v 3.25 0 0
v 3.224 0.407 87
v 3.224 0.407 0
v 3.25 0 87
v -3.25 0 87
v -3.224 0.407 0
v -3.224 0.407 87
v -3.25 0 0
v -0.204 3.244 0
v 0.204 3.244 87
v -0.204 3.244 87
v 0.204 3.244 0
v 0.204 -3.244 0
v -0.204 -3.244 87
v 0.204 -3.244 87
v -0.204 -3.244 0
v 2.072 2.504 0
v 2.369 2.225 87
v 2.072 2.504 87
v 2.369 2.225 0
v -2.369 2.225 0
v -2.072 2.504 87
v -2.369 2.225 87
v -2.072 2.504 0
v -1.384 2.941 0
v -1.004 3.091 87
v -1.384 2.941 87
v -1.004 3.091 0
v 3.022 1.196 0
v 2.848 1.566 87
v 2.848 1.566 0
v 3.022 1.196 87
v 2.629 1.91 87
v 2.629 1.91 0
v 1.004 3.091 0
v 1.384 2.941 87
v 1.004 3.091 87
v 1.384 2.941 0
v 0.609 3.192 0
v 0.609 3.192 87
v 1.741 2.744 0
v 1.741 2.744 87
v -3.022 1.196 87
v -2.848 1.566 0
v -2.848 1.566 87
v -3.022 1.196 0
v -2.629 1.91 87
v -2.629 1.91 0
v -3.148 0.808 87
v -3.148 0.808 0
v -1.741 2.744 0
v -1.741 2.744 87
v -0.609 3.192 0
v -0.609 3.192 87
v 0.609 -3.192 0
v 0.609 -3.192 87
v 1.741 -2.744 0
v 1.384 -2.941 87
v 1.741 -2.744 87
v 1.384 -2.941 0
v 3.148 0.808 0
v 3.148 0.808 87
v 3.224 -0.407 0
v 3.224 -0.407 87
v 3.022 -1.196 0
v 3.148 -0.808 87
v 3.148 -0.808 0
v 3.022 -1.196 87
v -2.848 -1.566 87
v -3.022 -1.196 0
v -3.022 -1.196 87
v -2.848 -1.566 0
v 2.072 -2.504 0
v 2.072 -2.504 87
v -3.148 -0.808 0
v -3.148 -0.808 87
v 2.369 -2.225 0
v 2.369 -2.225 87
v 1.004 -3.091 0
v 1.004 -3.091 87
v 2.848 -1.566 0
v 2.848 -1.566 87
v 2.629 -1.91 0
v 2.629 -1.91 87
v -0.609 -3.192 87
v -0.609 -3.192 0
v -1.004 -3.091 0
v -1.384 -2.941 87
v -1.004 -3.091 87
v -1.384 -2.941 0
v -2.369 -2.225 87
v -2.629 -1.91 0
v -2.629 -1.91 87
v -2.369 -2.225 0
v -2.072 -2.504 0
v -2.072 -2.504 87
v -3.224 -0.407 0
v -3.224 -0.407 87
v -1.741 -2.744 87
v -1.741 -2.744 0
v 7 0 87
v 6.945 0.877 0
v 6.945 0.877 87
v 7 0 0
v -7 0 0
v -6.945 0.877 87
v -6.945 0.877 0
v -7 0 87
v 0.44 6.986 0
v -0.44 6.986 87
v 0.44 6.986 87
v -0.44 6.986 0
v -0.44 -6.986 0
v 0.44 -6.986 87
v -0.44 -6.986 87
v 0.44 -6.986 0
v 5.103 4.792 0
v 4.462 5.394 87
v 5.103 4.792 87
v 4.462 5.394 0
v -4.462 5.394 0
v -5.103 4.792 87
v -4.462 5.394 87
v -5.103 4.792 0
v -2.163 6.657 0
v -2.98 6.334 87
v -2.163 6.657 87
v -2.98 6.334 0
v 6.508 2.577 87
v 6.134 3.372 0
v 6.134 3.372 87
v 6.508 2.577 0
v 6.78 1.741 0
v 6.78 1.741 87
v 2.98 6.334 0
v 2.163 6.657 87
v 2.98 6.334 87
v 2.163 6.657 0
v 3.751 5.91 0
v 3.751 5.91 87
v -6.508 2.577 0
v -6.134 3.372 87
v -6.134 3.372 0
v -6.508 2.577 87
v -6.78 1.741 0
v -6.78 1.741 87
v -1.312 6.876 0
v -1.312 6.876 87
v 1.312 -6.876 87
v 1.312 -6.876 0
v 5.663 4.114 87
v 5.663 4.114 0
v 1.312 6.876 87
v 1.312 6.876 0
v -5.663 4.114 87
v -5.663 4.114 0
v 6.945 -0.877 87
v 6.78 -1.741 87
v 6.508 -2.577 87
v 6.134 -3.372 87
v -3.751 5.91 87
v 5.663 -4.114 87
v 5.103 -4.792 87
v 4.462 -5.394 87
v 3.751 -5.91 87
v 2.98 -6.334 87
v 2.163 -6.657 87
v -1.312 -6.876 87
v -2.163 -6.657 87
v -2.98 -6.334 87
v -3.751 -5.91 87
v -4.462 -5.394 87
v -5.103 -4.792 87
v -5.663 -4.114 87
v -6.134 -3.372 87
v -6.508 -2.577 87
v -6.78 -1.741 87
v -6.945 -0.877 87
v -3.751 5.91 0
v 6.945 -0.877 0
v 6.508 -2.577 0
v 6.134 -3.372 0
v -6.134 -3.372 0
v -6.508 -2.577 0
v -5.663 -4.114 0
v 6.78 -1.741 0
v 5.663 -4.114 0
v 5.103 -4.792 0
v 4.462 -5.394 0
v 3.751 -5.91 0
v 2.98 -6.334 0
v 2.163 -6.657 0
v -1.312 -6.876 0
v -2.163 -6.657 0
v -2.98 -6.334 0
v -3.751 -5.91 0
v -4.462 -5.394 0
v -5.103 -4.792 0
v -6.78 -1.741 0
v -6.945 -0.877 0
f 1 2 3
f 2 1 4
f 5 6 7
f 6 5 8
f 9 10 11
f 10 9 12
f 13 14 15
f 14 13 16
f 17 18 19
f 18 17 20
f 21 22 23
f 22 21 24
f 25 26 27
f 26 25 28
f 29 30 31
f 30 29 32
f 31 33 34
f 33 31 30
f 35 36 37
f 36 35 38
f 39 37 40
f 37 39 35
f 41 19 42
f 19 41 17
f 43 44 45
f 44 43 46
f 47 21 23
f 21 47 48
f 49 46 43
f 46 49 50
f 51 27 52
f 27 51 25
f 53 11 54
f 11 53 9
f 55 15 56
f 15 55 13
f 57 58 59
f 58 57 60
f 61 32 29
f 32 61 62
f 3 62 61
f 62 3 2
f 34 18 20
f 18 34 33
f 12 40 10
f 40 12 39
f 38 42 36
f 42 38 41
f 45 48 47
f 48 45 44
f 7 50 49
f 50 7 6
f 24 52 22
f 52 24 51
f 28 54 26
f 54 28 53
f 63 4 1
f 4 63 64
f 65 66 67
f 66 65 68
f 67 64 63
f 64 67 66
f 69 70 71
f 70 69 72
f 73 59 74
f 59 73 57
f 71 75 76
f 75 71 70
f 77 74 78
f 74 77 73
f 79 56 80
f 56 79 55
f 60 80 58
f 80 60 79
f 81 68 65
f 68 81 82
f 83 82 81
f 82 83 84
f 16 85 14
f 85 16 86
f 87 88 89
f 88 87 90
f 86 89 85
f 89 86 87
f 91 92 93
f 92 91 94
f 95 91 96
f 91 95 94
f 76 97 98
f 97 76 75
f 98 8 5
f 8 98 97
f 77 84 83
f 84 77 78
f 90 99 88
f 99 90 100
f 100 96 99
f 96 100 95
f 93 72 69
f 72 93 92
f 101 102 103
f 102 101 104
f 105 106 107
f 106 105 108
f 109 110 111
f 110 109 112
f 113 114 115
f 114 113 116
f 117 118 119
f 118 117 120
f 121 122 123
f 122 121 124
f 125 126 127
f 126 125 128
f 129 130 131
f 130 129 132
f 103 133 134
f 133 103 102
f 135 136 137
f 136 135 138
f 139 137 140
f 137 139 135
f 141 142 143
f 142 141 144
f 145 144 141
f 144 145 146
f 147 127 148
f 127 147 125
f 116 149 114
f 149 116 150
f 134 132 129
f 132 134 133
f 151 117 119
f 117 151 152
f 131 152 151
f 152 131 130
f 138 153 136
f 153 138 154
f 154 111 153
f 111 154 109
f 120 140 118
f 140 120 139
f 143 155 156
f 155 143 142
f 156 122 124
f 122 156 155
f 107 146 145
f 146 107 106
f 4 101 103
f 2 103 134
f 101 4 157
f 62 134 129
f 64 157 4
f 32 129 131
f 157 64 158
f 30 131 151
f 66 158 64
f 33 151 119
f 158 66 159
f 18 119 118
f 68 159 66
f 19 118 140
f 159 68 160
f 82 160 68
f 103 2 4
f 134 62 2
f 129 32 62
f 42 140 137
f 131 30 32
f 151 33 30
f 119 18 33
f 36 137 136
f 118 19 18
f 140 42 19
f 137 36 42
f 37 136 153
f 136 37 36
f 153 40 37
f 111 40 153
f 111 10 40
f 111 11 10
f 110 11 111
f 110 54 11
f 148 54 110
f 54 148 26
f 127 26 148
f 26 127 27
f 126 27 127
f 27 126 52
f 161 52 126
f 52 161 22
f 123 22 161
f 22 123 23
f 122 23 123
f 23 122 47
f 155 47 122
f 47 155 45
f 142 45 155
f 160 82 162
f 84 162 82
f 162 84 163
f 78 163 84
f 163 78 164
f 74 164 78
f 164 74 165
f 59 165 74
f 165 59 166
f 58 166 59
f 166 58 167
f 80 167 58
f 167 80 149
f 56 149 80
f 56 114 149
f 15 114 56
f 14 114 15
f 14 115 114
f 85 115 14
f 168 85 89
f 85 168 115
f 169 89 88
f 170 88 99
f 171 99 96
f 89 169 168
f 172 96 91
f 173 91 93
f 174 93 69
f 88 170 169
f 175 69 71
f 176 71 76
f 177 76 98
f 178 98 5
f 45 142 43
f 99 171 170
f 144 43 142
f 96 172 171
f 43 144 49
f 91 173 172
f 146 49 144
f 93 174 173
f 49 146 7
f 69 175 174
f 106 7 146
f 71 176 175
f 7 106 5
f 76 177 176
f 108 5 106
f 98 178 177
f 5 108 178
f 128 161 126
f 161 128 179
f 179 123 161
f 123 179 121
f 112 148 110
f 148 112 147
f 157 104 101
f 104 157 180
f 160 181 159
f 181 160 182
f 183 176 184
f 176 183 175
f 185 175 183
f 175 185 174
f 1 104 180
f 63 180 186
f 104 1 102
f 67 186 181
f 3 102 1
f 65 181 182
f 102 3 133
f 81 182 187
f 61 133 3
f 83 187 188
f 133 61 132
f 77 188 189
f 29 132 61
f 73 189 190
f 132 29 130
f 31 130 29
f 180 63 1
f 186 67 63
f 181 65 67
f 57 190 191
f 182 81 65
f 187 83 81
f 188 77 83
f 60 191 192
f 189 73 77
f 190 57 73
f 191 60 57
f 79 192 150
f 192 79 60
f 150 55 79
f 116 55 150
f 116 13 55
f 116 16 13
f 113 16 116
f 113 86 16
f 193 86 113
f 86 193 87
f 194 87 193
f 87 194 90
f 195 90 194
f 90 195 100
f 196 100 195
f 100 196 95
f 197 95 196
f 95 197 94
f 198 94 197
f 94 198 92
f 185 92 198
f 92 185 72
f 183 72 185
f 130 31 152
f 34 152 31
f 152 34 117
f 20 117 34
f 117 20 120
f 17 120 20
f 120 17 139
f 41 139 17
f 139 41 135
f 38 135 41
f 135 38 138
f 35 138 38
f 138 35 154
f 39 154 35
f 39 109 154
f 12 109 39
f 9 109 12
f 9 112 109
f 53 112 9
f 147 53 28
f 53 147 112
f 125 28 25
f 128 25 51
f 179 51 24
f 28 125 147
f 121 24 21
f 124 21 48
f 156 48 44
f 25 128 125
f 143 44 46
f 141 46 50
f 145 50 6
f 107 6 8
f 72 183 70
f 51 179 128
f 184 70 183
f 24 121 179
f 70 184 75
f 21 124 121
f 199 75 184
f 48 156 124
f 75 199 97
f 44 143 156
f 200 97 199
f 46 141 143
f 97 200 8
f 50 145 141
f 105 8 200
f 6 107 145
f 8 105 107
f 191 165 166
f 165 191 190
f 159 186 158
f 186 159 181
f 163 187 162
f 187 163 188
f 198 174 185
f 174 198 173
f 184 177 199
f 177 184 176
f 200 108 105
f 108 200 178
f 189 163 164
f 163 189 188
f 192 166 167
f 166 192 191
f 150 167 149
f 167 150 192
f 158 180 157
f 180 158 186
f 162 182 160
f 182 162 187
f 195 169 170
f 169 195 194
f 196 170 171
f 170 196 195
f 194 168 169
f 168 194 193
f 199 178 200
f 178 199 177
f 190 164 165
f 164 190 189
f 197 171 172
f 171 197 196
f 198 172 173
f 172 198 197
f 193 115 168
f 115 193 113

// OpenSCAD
$fn = 50;


difference() {
	union() {
		cylinder(h = 87, r = 7.0000000000);
	}
	union() {
		translate(v = [0, 0, -100]) {
			cylinder(h = 200, r = 3.2500000000);
		}
		translate(v = [0, 0, -100]) {
			cylinder(h = 200, r = 1.8000000000);
		}
	}
}
